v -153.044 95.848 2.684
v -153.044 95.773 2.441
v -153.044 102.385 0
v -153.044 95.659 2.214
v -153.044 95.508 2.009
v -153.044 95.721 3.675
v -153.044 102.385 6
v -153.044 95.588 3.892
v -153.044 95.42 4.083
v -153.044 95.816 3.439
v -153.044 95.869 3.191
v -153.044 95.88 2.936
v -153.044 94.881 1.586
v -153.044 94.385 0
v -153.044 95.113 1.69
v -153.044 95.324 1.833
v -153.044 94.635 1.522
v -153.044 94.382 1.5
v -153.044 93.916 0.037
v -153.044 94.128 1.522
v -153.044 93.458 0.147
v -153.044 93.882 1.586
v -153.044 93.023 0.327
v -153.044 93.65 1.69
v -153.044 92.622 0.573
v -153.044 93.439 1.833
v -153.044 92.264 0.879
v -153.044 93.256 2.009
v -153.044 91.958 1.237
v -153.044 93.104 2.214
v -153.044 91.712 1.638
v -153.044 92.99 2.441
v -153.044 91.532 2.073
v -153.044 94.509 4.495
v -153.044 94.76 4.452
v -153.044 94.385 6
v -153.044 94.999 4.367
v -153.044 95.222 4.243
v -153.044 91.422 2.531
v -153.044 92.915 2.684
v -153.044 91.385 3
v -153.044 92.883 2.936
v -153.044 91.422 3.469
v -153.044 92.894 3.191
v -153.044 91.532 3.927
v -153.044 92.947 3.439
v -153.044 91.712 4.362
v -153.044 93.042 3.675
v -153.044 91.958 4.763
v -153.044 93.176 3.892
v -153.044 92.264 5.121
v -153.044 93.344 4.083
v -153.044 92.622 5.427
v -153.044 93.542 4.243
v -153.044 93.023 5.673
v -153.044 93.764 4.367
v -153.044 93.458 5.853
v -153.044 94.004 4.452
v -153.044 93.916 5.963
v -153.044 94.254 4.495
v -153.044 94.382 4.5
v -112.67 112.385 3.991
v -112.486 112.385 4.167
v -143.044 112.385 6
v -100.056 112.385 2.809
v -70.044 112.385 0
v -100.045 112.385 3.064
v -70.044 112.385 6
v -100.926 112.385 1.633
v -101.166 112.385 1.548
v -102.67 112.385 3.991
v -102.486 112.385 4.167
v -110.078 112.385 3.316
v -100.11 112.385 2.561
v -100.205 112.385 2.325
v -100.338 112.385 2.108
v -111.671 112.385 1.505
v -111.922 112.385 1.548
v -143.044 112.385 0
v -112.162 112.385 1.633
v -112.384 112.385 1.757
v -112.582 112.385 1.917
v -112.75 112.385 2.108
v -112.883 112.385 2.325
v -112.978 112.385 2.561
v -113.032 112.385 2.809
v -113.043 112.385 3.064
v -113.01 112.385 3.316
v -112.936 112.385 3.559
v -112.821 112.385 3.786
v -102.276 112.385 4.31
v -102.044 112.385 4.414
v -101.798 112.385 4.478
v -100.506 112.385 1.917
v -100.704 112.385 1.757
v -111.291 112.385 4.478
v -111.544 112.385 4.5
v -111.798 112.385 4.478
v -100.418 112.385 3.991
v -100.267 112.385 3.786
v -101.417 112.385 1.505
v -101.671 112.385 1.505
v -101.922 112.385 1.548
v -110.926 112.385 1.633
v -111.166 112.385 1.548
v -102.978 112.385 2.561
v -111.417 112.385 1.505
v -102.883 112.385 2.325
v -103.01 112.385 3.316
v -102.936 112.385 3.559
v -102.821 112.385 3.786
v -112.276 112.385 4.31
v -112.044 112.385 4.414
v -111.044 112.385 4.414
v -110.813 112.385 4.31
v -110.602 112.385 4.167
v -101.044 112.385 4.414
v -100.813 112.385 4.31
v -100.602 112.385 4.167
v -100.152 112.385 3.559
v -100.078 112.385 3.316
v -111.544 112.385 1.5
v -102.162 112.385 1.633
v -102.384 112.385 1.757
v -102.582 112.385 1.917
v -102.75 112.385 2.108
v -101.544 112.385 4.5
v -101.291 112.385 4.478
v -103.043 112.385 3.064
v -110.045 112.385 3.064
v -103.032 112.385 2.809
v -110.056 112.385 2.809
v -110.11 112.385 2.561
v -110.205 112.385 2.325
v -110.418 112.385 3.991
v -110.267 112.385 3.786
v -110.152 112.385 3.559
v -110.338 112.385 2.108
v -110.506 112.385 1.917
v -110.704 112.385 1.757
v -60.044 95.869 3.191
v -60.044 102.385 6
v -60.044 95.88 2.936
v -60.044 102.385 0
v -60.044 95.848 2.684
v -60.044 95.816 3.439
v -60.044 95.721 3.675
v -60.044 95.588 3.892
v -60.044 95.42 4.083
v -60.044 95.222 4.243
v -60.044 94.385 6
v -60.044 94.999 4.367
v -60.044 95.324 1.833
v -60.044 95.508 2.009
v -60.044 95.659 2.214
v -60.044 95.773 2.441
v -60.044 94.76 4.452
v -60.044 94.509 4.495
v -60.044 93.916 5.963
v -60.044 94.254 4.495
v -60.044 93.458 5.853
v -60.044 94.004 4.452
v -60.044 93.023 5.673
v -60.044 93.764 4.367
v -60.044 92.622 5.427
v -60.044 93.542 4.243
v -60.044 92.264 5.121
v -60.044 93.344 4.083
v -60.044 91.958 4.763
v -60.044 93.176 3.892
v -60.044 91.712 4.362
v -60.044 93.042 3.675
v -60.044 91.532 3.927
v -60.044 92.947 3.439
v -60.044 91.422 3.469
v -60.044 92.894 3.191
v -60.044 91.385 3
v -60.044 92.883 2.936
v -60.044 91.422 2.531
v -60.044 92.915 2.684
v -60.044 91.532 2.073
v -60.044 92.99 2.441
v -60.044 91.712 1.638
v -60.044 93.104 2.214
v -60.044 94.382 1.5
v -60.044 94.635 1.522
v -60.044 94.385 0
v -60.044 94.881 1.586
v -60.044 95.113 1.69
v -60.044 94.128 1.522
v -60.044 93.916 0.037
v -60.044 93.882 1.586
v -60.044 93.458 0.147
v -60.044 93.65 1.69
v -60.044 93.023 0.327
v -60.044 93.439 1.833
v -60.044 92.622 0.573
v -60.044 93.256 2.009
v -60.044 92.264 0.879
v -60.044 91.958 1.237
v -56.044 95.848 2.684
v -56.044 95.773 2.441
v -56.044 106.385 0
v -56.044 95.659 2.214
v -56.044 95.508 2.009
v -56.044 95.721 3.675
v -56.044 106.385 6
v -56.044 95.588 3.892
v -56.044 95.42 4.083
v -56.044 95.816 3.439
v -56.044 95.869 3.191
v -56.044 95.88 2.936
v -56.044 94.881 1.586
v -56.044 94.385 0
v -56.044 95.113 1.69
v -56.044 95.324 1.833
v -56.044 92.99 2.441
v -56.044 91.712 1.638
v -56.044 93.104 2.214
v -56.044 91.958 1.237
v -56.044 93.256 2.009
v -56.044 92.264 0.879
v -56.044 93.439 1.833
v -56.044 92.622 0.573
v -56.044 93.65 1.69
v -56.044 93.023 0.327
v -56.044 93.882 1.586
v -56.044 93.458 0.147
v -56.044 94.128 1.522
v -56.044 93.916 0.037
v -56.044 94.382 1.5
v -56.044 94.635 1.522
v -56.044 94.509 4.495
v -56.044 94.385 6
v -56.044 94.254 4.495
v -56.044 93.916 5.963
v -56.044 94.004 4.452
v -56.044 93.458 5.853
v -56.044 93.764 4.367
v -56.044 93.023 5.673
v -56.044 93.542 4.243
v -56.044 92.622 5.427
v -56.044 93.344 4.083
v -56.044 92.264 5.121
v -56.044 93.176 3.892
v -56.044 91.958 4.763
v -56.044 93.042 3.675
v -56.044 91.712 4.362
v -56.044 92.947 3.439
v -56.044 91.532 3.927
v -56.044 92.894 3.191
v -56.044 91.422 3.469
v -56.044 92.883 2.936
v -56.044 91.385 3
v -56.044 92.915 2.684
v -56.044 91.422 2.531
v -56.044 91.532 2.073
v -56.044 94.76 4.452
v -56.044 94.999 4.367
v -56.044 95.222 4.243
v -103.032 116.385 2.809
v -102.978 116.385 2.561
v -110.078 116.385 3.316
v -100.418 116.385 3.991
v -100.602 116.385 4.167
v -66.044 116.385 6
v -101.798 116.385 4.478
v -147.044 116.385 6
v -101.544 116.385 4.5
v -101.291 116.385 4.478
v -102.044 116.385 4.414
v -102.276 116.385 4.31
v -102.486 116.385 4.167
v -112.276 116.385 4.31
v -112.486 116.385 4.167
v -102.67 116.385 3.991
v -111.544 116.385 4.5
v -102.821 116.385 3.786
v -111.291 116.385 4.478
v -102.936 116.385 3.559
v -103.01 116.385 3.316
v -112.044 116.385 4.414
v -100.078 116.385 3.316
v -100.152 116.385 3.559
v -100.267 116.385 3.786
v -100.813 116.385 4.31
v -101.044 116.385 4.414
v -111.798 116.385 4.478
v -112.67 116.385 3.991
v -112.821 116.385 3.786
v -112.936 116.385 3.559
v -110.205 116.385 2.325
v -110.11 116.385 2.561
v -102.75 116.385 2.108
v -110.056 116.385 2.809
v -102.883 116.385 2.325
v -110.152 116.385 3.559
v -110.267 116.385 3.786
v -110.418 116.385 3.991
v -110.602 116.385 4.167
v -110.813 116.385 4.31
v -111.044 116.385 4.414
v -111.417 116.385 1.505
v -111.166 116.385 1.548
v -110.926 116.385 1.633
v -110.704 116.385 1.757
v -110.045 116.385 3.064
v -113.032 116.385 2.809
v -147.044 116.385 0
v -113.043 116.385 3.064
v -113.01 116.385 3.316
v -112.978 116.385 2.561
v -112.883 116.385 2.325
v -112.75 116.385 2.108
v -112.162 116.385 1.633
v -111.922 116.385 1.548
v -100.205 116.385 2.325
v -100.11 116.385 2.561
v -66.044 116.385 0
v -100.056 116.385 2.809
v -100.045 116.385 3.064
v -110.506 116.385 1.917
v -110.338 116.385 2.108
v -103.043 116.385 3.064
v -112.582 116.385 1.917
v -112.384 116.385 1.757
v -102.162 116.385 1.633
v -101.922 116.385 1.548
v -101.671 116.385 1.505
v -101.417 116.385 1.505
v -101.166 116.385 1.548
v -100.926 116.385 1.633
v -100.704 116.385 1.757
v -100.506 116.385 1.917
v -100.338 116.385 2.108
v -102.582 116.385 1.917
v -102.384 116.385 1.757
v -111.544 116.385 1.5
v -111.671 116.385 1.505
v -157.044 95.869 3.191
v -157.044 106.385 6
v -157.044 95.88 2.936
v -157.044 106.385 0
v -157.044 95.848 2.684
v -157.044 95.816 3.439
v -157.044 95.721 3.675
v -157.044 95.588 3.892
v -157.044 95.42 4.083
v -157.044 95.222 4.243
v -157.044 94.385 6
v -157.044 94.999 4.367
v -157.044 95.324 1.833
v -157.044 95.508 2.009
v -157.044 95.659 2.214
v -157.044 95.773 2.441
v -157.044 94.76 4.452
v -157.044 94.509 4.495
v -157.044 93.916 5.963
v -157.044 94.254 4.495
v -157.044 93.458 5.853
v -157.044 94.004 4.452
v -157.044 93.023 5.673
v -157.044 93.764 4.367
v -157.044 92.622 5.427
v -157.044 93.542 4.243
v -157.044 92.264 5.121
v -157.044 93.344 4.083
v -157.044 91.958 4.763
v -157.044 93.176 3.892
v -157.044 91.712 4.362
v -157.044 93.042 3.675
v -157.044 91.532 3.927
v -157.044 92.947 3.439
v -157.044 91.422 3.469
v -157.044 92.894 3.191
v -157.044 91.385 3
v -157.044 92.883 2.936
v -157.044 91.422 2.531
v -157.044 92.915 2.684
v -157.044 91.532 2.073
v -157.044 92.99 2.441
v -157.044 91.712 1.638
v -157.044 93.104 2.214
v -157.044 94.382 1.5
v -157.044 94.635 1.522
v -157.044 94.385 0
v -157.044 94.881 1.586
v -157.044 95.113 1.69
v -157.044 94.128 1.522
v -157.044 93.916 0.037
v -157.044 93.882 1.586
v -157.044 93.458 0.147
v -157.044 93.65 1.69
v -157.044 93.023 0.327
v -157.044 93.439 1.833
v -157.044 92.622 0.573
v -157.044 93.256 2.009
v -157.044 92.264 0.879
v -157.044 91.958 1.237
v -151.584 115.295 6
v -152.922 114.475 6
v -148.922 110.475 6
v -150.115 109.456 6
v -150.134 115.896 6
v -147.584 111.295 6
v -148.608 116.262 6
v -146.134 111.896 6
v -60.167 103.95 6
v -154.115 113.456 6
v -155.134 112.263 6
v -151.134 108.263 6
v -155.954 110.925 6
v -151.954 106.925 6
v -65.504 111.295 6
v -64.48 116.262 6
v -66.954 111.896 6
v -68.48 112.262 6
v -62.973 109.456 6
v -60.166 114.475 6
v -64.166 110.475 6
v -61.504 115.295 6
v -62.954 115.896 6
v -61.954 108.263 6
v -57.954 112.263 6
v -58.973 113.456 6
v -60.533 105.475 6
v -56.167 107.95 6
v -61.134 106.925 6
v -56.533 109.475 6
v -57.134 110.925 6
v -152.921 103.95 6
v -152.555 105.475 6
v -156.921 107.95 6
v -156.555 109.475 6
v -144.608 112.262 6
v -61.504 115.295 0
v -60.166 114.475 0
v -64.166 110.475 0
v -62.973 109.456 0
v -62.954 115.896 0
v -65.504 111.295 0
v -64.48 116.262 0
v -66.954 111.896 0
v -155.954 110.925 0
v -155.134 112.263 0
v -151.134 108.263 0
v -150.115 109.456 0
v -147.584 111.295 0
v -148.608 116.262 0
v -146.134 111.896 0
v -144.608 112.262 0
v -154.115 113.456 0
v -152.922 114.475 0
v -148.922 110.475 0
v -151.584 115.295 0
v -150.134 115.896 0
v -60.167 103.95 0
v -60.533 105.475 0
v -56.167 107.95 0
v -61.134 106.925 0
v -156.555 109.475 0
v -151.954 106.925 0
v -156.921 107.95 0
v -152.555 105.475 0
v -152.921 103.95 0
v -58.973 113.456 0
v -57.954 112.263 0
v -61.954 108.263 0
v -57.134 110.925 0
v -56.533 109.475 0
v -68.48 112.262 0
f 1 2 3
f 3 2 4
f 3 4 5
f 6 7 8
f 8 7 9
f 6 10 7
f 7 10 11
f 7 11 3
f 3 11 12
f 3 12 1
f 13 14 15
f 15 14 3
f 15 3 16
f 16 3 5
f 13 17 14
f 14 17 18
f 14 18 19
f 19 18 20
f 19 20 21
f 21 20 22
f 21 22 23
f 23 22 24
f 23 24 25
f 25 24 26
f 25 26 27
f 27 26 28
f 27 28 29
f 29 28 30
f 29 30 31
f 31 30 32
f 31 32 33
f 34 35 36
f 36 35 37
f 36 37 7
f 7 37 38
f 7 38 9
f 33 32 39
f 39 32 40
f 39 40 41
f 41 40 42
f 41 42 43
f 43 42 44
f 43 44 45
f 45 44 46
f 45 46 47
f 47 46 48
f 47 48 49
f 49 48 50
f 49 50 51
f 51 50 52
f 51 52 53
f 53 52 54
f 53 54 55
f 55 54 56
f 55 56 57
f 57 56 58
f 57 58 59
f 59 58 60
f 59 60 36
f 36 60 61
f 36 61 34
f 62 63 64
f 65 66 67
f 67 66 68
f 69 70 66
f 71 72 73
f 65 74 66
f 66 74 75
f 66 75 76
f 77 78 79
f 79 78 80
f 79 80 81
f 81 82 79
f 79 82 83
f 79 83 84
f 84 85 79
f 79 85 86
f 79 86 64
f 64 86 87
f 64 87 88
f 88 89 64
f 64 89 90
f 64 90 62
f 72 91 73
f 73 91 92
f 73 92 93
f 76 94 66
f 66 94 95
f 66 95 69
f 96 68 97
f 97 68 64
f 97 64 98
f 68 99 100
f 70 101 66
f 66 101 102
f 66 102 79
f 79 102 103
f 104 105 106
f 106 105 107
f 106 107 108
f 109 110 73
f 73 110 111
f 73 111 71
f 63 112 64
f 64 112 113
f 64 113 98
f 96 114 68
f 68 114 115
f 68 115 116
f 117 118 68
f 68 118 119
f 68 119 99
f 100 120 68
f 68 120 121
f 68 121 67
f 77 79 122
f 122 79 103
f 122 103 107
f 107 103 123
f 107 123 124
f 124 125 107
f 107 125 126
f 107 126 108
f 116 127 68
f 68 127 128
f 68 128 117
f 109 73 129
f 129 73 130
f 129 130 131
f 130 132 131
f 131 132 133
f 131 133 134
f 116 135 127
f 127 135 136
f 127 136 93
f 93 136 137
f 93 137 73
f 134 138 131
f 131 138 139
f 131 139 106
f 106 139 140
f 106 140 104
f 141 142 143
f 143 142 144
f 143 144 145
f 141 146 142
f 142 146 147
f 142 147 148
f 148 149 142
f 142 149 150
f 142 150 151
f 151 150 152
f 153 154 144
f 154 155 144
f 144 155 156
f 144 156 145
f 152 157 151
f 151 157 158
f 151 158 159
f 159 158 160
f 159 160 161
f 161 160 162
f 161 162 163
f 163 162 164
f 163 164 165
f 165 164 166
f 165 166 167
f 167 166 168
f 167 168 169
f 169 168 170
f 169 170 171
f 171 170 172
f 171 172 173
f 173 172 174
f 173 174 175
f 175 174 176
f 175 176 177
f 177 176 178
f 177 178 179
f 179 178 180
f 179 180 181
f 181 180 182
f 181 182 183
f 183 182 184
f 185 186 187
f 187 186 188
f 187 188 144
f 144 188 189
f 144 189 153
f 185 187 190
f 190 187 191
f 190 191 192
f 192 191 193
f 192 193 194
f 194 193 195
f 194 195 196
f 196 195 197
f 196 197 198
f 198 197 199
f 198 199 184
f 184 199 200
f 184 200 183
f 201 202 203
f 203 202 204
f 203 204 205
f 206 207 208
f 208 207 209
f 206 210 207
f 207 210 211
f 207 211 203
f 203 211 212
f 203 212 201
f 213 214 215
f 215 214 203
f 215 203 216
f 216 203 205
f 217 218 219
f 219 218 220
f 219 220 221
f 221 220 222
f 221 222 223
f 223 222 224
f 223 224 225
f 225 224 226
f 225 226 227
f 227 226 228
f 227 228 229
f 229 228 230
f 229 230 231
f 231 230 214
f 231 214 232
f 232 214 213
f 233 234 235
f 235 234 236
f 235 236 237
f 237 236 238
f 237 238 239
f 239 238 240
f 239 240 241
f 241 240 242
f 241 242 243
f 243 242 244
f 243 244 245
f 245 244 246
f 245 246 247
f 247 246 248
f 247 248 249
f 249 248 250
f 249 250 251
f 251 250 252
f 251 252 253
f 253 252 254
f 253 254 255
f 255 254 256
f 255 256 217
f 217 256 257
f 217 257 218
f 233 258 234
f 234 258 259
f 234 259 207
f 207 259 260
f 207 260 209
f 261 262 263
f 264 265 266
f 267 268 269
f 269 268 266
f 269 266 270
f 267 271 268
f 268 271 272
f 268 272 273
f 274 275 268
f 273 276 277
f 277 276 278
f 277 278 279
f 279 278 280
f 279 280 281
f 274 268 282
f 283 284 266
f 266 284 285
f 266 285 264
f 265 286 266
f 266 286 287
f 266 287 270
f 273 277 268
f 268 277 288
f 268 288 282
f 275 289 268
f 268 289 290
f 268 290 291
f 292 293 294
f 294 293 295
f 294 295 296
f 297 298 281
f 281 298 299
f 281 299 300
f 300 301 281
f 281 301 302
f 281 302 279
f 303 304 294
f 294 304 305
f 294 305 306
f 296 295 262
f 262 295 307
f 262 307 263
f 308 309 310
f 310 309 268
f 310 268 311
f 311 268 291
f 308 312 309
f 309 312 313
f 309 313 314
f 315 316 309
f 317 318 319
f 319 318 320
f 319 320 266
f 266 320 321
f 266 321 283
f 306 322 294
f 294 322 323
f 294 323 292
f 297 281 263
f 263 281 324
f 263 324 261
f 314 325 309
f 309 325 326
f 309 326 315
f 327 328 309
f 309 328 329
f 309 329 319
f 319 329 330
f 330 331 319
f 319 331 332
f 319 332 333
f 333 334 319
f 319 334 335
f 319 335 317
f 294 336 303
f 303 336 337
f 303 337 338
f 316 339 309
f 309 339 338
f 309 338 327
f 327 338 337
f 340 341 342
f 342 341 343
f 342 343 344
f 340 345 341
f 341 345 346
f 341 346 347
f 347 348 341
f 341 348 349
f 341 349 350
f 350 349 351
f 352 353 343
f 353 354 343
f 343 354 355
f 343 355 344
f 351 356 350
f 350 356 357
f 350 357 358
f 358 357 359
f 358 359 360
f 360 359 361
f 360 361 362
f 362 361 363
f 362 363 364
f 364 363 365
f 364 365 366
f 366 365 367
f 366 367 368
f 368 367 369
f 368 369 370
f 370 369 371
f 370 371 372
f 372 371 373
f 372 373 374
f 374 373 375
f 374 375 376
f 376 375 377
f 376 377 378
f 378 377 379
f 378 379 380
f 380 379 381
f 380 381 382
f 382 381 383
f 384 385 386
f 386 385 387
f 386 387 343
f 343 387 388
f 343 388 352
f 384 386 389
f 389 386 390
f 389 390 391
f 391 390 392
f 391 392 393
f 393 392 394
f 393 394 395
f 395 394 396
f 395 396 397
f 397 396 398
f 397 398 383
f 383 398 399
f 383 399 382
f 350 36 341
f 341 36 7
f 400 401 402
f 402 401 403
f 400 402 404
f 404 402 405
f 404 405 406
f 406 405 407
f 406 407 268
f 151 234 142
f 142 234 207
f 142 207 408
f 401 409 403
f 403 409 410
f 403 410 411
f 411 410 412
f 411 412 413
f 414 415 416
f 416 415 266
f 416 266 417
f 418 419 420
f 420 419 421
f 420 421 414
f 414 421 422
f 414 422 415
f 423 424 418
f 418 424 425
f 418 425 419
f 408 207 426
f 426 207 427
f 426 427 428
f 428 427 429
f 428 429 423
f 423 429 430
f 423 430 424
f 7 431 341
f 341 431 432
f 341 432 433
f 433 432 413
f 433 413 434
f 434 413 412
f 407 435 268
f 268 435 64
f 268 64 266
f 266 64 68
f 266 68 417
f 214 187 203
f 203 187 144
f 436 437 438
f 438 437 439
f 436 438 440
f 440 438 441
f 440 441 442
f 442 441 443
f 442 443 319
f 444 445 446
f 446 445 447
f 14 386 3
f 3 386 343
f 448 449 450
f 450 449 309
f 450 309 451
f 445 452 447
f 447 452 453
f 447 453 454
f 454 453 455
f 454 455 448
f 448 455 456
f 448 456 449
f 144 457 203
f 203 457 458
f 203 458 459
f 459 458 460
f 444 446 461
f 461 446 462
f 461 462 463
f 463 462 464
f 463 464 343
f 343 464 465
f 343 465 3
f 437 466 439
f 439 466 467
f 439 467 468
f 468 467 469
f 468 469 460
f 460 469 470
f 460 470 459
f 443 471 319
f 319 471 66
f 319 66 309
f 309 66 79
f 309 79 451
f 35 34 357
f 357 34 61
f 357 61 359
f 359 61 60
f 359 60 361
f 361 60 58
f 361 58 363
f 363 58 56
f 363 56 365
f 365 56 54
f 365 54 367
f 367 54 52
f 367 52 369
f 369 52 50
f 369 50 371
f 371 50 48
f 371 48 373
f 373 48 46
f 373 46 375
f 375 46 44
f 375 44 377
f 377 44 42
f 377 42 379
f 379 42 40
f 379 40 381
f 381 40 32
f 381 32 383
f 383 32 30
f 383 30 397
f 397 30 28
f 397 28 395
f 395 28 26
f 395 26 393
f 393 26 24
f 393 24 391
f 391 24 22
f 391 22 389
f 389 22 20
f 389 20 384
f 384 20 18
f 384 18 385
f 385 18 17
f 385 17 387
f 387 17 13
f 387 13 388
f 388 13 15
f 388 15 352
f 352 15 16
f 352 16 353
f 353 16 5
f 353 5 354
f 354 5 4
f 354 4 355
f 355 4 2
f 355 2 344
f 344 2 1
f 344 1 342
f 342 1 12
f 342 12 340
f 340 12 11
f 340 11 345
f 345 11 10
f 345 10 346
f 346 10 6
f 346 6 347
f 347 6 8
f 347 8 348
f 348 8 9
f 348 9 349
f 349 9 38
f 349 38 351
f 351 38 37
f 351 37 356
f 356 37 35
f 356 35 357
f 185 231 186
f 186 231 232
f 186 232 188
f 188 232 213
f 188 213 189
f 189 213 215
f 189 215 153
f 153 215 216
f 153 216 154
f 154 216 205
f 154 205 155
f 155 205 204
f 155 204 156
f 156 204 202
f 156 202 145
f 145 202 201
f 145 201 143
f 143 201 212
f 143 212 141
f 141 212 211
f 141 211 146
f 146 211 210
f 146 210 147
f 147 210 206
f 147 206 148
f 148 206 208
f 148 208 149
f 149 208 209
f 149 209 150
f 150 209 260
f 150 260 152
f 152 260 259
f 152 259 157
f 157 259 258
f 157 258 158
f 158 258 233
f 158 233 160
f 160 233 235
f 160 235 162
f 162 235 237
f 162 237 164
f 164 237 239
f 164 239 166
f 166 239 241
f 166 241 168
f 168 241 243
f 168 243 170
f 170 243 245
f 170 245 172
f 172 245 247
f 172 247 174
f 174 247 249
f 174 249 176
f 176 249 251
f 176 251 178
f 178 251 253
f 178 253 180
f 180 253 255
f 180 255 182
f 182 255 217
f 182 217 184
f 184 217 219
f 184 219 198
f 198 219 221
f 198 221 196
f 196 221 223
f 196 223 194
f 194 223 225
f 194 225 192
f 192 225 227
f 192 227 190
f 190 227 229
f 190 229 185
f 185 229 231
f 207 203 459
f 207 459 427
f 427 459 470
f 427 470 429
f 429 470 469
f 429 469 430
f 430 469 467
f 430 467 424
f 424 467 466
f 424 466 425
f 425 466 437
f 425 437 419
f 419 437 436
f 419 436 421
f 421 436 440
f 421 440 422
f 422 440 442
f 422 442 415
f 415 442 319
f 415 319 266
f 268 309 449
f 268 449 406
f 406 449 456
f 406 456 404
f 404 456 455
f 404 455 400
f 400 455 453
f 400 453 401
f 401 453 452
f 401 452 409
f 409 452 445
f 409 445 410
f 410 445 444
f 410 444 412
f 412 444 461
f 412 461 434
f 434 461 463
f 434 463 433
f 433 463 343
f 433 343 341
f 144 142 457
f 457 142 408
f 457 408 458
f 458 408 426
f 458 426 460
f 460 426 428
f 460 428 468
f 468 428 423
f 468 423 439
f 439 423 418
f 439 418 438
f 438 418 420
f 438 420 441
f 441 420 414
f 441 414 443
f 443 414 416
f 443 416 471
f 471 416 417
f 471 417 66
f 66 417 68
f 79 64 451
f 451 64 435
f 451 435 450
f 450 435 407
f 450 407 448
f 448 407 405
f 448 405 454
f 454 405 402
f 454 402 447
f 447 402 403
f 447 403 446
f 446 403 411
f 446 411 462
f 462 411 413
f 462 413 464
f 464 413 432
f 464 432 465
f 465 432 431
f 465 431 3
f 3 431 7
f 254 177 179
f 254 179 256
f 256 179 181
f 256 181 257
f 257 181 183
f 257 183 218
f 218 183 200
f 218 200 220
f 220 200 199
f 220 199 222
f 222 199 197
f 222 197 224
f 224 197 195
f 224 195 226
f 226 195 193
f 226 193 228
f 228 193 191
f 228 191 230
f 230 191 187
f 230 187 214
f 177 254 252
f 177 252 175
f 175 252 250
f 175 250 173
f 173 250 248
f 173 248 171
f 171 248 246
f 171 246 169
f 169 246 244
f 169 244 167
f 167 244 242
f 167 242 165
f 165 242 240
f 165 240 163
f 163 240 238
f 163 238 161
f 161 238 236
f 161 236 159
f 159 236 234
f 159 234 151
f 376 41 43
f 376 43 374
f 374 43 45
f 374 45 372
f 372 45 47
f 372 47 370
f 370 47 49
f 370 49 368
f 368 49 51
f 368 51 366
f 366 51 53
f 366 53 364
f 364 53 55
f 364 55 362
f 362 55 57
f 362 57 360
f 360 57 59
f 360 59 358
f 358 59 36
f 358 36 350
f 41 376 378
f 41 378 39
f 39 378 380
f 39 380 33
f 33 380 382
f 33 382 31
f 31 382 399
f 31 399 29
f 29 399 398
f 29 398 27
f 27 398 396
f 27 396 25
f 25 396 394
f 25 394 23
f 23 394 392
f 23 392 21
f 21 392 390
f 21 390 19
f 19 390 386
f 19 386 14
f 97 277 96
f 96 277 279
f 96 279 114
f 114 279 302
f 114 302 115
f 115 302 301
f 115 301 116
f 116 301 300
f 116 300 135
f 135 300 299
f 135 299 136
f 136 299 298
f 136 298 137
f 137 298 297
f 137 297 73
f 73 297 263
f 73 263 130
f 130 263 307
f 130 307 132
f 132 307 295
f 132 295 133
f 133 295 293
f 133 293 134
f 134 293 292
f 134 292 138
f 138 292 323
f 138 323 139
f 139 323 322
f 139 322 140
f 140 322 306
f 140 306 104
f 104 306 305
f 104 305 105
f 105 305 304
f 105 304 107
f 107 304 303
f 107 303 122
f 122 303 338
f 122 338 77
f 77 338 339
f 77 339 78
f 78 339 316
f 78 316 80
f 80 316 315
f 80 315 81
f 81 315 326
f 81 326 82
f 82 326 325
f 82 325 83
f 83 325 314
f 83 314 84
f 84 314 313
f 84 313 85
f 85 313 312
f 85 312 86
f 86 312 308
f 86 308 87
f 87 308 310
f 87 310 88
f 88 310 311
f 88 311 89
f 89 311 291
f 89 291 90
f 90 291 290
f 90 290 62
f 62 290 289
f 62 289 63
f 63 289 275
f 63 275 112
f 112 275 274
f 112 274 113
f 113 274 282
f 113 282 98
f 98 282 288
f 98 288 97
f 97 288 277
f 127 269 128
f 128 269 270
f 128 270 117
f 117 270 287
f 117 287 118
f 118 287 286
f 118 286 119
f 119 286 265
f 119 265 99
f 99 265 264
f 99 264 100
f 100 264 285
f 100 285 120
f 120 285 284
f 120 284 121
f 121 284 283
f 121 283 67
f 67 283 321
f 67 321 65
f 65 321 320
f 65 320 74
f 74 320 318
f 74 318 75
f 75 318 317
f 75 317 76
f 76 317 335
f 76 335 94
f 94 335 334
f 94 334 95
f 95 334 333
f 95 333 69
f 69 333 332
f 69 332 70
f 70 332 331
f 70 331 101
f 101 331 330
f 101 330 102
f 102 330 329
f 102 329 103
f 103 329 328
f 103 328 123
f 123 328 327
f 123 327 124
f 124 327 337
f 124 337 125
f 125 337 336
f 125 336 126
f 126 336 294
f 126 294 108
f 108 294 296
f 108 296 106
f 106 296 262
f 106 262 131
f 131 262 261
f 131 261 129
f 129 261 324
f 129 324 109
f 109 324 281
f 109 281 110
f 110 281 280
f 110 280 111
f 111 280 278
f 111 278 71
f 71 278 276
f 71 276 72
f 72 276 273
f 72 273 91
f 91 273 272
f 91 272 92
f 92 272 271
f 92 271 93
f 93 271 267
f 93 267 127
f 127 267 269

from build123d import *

# Parameters (mm, degrees)
BOSS_EXTRUDE1_DEPTH = 6
SKETCH2_R           = 1.5
CUT_EXTRUDE1_DEPTH  = 104
FILLET1_R           = 10
FILLET2_R           = 3
SKETCH3_R           = 1.5
CUT_EXTRUDE2_DEPTH  = 4


with BuildPart() as part:
    # Sketch1 → Boss-Extrude1 (new body)
    with BuildSketch(Plane.XY):
        Polygon((-157.044043164, 91.385212048), (-157.044043164, 116.385212048), (-56.044043164, 116.385212048), (-56.044043164, 91.385212048), (-60.044043164, 91.385212048), (-60.044043164, 112.385212048), (-153.044043164, 112.385212048), (-153.044043164, 91.385212048), align=None)
    extrude(amount=BOSS_EXTRUDE1_DEPTH)

    # Sketch2 → Cut-Extrude1 (cut)
    with BuildSketch(Plane(origin=(-56.044043164, 0, 0), x_dir=(0, 0, -1), z_dir=(1, 0, 0))):
        with Locations((-3, 94.381633834)):
            Circle(SKETCH2_R)
    extrude(amount=-CUT_EXTRUDE1_DEPTH, mode=Mode.SUBTRACT)

    # Fillet1
    fillet1_edges = [part.edges().sort_by_distance(p)[0] for p in [
        (-157.044043164, 116.385212048, 3),
        (-56.044043164, 116.385212048, 3),
        (-60.044043164, 112.385212048, 3),
        (-153.044043164, 112.385212048, 3),
    ]]
    fillet(fillet1_edges, radius=FILLET1_R)

    # Fillet2
    fillet2_edges = [part.edges().sort_by_distance(p)[0] for p in [
        (-58.044043164, 91.385212048, 6),
        (-58.044043164, 91.385212048, 0),
        (-155.044043164, 91.385212048, 0),
        (-155.044043164, 91.385212048, 6),
    ]]
    fillet(fillet2_edges, radius=FILLET2_R - 0.0001)  # a hair under: the kernel refuses the full size

    # Sketch3 → Cut-Extrude2 (cut)
    with BuildSketch(Plane(origin=(0, 116.385212048, 0), x_dir=(1, 0, 0), z_dir=(0, 1, 0))):
        with Locations(Location((-101.544043164, -3, 0), (0, 0, 270))):
            Circle(SKETCH3_R)
        with Locations(Location((-111.544043164, -3, 0), (0, 0, 90))):
            Circle(SKETCH3_R)
    extrude(amount=-CUT_EXTRUDE2_DEPTH, mode=Mode.SUBTRACT)


solid = part.part
